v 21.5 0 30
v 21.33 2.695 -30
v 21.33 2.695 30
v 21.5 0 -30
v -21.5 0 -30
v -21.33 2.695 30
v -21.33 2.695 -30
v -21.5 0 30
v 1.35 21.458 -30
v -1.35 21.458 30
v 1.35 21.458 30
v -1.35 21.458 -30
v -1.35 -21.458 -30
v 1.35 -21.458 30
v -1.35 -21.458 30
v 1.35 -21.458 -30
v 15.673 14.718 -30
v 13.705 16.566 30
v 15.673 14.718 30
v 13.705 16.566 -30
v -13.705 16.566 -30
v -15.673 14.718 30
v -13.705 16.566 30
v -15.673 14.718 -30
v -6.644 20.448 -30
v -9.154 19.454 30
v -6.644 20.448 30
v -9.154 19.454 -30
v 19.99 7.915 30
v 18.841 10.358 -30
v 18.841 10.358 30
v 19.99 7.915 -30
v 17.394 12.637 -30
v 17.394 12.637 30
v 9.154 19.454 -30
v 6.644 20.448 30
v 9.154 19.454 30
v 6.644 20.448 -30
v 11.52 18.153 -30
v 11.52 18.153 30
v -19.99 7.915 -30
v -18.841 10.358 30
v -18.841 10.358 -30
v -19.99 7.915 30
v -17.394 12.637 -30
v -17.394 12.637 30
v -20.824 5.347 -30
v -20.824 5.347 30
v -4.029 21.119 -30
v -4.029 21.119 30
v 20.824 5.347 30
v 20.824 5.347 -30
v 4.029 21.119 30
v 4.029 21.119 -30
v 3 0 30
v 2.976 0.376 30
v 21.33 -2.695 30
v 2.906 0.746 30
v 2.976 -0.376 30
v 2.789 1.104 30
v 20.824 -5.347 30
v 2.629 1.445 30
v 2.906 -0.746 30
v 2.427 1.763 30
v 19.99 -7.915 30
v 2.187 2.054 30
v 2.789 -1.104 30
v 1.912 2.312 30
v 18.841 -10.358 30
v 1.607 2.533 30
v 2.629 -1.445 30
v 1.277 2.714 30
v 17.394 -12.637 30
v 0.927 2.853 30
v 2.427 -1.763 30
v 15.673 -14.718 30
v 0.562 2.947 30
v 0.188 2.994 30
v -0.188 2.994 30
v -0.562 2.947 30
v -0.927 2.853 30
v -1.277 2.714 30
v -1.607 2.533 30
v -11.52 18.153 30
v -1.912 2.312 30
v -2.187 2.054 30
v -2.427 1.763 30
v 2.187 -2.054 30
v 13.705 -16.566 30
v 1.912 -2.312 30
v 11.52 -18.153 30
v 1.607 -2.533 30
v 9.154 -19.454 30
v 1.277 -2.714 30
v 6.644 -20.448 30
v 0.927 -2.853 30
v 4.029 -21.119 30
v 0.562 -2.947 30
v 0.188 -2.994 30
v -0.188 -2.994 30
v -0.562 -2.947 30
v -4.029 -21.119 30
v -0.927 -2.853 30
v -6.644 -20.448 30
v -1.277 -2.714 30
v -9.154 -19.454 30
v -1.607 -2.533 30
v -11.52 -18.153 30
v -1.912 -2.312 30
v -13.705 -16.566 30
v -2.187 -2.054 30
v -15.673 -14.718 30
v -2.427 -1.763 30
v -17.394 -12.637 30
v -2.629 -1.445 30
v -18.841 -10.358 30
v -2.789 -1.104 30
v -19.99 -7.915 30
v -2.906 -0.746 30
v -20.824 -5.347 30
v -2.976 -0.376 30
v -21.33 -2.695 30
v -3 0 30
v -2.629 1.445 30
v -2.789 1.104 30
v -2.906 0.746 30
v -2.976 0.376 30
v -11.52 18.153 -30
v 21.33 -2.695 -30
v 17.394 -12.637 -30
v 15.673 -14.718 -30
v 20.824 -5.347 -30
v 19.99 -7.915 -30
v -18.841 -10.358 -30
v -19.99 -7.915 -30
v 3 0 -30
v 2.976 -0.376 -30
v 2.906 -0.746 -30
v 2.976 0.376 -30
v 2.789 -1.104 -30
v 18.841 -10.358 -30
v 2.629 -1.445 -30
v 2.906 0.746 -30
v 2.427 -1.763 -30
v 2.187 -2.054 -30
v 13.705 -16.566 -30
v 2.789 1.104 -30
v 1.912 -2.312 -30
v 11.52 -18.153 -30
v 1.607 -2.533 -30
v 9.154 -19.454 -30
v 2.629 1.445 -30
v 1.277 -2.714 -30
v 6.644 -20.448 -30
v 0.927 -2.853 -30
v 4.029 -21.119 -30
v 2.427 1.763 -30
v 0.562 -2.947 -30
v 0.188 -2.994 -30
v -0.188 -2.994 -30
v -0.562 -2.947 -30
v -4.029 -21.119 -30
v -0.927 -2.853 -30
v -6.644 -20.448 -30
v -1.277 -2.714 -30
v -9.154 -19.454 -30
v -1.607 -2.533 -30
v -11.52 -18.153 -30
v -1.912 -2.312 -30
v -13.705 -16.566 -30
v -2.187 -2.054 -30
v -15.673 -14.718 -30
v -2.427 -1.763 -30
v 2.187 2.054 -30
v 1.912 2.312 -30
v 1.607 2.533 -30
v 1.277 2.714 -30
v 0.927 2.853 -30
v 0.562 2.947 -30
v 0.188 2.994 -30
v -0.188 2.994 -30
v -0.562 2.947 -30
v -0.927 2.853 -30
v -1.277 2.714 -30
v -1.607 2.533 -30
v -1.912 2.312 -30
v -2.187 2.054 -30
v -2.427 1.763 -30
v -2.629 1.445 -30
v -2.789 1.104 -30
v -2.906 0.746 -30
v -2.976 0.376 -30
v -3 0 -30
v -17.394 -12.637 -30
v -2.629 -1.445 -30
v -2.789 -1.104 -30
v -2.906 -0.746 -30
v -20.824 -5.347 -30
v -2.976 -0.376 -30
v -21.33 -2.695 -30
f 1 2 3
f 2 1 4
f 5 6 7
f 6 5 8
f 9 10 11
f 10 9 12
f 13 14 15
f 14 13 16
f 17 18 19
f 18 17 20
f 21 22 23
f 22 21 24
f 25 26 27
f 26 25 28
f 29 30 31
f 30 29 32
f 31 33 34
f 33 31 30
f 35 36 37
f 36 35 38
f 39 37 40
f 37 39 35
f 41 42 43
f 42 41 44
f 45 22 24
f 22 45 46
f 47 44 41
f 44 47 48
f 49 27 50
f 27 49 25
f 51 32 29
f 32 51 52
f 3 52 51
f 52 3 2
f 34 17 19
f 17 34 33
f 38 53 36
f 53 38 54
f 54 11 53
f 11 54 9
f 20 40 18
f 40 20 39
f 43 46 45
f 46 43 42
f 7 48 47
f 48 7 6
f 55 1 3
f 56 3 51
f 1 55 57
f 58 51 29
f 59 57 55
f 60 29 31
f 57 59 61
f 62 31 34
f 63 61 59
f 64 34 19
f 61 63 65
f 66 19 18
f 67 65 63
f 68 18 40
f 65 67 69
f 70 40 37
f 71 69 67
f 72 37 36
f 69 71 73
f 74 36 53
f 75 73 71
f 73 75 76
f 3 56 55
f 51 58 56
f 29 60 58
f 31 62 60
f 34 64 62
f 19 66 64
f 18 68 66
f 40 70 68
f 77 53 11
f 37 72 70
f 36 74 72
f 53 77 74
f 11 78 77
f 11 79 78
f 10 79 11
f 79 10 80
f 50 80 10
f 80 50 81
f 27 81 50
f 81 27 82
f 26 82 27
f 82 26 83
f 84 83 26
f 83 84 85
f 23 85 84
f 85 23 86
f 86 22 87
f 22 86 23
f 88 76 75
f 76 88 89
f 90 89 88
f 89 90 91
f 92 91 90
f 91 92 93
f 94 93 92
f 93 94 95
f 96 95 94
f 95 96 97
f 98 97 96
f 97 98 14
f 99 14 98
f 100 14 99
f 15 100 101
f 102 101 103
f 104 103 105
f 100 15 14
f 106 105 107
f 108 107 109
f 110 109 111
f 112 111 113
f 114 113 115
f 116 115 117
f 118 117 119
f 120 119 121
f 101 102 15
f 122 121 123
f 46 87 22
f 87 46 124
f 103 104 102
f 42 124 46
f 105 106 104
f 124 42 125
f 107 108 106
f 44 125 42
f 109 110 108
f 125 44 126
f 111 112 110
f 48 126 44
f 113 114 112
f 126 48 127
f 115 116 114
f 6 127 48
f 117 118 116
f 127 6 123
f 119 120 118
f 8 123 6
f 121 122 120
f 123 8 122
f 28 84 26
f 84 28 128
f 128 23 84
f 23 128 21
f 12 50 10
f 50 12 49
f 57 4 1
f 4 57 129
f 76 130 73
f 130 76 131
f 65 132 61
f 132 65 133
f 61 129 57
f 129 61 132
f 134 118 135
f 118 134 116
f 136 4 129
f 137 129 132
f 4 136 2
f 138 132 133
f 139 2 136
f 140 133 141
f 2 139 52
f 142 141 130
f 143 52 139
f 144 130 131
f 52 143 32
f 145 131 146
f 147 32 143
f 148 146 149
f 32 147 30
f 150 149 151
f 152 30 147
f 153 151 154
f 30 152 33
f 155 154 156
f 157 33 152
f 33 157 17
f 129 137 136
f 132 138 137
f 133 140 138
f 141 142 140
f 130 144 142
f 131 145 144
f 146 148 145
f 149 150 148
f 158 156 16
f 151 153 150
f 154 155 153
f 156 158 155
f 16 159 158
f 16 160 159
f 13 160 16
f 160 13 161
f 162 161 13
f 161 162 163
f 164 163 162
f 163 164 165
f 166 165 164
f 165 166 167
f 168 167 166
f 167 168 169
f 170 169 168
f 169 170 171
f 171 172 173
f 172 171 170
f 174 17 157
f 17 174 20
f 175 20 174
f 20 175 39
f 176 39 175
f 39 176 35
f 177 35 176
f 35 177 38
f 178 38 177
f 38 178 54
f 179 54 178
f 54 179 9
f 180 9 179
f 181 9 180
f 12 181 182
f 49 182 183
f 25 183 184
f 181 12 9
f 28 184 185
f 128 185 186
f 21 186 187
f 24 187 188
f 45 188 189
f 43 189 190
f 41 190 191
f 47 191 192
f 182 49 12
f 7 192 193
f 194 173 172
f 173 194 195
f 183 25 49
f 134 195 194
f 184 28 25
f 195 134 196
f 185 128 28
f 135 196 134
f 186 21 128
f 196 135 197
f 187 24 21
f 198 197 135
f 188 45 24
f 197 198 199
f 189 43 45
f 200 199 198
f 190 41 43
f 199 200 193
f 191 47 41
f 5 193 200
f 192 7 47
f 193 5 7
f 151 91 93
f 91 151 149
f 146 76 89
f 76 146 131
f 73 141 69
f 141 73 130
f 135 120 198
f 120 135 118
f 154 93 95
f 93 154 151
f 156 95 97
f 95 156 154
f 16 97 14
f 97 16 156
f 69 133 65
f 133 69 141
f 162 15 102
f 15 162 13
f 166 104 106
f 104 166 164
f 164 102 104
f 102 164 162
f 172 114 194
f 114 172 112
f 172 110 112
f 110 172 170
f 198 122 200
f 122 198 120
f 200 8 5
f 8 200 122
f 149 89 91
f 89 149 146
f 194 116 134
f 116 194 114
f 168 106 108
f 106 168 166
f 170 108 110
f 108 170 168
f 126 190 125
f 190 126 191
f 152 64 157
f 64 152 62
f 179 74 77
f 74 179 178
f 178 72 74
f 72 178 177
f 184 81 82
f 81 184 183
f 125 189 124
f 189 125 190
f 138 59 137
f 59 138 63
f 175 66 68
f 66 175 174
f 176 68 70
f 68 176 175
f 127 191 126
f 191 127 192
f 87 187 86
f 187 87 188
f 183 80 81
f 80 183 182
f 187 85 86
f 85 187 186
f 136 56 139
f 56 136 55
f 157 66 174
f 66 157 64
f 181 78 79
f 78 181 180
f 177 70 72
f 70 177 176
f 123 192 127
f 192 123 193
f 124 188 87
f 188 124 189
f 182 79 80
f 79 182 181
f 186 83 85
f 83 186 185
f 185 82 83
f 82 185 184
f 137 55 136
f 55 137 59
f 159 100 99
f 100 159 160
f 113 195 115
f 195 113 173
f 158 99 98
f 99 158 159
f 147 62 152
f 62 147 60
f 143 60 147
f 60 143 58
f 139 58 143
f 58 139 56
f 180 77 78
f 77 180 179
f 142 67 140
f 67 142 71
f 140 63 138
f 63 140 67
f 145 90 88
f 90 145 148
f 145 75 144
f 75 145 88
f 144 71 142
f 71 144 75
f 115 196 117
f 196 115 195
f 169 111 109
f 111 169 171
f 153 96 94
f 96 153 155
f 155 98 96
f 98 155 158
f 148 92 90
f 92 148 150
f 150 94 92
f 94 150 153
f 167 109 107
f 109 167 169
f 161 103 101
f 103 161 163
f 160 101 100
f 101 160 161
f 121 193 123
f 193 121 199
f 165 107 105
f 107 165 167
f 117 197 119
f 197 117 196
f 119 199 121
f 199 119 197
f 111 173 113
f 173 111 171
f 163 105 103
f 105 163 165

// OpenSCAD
$fn = 50;


difference() {
	union() {
		translate(v = [0, 0, -30.0000000000]) {
			cylinder(h = 60, r = 21.5000000000);
		}
	}
	union() {
		translate(v = [0, 0, -100.0000000000]) {
			cylinder(h = 200, r = 3);
		}
	}
}
